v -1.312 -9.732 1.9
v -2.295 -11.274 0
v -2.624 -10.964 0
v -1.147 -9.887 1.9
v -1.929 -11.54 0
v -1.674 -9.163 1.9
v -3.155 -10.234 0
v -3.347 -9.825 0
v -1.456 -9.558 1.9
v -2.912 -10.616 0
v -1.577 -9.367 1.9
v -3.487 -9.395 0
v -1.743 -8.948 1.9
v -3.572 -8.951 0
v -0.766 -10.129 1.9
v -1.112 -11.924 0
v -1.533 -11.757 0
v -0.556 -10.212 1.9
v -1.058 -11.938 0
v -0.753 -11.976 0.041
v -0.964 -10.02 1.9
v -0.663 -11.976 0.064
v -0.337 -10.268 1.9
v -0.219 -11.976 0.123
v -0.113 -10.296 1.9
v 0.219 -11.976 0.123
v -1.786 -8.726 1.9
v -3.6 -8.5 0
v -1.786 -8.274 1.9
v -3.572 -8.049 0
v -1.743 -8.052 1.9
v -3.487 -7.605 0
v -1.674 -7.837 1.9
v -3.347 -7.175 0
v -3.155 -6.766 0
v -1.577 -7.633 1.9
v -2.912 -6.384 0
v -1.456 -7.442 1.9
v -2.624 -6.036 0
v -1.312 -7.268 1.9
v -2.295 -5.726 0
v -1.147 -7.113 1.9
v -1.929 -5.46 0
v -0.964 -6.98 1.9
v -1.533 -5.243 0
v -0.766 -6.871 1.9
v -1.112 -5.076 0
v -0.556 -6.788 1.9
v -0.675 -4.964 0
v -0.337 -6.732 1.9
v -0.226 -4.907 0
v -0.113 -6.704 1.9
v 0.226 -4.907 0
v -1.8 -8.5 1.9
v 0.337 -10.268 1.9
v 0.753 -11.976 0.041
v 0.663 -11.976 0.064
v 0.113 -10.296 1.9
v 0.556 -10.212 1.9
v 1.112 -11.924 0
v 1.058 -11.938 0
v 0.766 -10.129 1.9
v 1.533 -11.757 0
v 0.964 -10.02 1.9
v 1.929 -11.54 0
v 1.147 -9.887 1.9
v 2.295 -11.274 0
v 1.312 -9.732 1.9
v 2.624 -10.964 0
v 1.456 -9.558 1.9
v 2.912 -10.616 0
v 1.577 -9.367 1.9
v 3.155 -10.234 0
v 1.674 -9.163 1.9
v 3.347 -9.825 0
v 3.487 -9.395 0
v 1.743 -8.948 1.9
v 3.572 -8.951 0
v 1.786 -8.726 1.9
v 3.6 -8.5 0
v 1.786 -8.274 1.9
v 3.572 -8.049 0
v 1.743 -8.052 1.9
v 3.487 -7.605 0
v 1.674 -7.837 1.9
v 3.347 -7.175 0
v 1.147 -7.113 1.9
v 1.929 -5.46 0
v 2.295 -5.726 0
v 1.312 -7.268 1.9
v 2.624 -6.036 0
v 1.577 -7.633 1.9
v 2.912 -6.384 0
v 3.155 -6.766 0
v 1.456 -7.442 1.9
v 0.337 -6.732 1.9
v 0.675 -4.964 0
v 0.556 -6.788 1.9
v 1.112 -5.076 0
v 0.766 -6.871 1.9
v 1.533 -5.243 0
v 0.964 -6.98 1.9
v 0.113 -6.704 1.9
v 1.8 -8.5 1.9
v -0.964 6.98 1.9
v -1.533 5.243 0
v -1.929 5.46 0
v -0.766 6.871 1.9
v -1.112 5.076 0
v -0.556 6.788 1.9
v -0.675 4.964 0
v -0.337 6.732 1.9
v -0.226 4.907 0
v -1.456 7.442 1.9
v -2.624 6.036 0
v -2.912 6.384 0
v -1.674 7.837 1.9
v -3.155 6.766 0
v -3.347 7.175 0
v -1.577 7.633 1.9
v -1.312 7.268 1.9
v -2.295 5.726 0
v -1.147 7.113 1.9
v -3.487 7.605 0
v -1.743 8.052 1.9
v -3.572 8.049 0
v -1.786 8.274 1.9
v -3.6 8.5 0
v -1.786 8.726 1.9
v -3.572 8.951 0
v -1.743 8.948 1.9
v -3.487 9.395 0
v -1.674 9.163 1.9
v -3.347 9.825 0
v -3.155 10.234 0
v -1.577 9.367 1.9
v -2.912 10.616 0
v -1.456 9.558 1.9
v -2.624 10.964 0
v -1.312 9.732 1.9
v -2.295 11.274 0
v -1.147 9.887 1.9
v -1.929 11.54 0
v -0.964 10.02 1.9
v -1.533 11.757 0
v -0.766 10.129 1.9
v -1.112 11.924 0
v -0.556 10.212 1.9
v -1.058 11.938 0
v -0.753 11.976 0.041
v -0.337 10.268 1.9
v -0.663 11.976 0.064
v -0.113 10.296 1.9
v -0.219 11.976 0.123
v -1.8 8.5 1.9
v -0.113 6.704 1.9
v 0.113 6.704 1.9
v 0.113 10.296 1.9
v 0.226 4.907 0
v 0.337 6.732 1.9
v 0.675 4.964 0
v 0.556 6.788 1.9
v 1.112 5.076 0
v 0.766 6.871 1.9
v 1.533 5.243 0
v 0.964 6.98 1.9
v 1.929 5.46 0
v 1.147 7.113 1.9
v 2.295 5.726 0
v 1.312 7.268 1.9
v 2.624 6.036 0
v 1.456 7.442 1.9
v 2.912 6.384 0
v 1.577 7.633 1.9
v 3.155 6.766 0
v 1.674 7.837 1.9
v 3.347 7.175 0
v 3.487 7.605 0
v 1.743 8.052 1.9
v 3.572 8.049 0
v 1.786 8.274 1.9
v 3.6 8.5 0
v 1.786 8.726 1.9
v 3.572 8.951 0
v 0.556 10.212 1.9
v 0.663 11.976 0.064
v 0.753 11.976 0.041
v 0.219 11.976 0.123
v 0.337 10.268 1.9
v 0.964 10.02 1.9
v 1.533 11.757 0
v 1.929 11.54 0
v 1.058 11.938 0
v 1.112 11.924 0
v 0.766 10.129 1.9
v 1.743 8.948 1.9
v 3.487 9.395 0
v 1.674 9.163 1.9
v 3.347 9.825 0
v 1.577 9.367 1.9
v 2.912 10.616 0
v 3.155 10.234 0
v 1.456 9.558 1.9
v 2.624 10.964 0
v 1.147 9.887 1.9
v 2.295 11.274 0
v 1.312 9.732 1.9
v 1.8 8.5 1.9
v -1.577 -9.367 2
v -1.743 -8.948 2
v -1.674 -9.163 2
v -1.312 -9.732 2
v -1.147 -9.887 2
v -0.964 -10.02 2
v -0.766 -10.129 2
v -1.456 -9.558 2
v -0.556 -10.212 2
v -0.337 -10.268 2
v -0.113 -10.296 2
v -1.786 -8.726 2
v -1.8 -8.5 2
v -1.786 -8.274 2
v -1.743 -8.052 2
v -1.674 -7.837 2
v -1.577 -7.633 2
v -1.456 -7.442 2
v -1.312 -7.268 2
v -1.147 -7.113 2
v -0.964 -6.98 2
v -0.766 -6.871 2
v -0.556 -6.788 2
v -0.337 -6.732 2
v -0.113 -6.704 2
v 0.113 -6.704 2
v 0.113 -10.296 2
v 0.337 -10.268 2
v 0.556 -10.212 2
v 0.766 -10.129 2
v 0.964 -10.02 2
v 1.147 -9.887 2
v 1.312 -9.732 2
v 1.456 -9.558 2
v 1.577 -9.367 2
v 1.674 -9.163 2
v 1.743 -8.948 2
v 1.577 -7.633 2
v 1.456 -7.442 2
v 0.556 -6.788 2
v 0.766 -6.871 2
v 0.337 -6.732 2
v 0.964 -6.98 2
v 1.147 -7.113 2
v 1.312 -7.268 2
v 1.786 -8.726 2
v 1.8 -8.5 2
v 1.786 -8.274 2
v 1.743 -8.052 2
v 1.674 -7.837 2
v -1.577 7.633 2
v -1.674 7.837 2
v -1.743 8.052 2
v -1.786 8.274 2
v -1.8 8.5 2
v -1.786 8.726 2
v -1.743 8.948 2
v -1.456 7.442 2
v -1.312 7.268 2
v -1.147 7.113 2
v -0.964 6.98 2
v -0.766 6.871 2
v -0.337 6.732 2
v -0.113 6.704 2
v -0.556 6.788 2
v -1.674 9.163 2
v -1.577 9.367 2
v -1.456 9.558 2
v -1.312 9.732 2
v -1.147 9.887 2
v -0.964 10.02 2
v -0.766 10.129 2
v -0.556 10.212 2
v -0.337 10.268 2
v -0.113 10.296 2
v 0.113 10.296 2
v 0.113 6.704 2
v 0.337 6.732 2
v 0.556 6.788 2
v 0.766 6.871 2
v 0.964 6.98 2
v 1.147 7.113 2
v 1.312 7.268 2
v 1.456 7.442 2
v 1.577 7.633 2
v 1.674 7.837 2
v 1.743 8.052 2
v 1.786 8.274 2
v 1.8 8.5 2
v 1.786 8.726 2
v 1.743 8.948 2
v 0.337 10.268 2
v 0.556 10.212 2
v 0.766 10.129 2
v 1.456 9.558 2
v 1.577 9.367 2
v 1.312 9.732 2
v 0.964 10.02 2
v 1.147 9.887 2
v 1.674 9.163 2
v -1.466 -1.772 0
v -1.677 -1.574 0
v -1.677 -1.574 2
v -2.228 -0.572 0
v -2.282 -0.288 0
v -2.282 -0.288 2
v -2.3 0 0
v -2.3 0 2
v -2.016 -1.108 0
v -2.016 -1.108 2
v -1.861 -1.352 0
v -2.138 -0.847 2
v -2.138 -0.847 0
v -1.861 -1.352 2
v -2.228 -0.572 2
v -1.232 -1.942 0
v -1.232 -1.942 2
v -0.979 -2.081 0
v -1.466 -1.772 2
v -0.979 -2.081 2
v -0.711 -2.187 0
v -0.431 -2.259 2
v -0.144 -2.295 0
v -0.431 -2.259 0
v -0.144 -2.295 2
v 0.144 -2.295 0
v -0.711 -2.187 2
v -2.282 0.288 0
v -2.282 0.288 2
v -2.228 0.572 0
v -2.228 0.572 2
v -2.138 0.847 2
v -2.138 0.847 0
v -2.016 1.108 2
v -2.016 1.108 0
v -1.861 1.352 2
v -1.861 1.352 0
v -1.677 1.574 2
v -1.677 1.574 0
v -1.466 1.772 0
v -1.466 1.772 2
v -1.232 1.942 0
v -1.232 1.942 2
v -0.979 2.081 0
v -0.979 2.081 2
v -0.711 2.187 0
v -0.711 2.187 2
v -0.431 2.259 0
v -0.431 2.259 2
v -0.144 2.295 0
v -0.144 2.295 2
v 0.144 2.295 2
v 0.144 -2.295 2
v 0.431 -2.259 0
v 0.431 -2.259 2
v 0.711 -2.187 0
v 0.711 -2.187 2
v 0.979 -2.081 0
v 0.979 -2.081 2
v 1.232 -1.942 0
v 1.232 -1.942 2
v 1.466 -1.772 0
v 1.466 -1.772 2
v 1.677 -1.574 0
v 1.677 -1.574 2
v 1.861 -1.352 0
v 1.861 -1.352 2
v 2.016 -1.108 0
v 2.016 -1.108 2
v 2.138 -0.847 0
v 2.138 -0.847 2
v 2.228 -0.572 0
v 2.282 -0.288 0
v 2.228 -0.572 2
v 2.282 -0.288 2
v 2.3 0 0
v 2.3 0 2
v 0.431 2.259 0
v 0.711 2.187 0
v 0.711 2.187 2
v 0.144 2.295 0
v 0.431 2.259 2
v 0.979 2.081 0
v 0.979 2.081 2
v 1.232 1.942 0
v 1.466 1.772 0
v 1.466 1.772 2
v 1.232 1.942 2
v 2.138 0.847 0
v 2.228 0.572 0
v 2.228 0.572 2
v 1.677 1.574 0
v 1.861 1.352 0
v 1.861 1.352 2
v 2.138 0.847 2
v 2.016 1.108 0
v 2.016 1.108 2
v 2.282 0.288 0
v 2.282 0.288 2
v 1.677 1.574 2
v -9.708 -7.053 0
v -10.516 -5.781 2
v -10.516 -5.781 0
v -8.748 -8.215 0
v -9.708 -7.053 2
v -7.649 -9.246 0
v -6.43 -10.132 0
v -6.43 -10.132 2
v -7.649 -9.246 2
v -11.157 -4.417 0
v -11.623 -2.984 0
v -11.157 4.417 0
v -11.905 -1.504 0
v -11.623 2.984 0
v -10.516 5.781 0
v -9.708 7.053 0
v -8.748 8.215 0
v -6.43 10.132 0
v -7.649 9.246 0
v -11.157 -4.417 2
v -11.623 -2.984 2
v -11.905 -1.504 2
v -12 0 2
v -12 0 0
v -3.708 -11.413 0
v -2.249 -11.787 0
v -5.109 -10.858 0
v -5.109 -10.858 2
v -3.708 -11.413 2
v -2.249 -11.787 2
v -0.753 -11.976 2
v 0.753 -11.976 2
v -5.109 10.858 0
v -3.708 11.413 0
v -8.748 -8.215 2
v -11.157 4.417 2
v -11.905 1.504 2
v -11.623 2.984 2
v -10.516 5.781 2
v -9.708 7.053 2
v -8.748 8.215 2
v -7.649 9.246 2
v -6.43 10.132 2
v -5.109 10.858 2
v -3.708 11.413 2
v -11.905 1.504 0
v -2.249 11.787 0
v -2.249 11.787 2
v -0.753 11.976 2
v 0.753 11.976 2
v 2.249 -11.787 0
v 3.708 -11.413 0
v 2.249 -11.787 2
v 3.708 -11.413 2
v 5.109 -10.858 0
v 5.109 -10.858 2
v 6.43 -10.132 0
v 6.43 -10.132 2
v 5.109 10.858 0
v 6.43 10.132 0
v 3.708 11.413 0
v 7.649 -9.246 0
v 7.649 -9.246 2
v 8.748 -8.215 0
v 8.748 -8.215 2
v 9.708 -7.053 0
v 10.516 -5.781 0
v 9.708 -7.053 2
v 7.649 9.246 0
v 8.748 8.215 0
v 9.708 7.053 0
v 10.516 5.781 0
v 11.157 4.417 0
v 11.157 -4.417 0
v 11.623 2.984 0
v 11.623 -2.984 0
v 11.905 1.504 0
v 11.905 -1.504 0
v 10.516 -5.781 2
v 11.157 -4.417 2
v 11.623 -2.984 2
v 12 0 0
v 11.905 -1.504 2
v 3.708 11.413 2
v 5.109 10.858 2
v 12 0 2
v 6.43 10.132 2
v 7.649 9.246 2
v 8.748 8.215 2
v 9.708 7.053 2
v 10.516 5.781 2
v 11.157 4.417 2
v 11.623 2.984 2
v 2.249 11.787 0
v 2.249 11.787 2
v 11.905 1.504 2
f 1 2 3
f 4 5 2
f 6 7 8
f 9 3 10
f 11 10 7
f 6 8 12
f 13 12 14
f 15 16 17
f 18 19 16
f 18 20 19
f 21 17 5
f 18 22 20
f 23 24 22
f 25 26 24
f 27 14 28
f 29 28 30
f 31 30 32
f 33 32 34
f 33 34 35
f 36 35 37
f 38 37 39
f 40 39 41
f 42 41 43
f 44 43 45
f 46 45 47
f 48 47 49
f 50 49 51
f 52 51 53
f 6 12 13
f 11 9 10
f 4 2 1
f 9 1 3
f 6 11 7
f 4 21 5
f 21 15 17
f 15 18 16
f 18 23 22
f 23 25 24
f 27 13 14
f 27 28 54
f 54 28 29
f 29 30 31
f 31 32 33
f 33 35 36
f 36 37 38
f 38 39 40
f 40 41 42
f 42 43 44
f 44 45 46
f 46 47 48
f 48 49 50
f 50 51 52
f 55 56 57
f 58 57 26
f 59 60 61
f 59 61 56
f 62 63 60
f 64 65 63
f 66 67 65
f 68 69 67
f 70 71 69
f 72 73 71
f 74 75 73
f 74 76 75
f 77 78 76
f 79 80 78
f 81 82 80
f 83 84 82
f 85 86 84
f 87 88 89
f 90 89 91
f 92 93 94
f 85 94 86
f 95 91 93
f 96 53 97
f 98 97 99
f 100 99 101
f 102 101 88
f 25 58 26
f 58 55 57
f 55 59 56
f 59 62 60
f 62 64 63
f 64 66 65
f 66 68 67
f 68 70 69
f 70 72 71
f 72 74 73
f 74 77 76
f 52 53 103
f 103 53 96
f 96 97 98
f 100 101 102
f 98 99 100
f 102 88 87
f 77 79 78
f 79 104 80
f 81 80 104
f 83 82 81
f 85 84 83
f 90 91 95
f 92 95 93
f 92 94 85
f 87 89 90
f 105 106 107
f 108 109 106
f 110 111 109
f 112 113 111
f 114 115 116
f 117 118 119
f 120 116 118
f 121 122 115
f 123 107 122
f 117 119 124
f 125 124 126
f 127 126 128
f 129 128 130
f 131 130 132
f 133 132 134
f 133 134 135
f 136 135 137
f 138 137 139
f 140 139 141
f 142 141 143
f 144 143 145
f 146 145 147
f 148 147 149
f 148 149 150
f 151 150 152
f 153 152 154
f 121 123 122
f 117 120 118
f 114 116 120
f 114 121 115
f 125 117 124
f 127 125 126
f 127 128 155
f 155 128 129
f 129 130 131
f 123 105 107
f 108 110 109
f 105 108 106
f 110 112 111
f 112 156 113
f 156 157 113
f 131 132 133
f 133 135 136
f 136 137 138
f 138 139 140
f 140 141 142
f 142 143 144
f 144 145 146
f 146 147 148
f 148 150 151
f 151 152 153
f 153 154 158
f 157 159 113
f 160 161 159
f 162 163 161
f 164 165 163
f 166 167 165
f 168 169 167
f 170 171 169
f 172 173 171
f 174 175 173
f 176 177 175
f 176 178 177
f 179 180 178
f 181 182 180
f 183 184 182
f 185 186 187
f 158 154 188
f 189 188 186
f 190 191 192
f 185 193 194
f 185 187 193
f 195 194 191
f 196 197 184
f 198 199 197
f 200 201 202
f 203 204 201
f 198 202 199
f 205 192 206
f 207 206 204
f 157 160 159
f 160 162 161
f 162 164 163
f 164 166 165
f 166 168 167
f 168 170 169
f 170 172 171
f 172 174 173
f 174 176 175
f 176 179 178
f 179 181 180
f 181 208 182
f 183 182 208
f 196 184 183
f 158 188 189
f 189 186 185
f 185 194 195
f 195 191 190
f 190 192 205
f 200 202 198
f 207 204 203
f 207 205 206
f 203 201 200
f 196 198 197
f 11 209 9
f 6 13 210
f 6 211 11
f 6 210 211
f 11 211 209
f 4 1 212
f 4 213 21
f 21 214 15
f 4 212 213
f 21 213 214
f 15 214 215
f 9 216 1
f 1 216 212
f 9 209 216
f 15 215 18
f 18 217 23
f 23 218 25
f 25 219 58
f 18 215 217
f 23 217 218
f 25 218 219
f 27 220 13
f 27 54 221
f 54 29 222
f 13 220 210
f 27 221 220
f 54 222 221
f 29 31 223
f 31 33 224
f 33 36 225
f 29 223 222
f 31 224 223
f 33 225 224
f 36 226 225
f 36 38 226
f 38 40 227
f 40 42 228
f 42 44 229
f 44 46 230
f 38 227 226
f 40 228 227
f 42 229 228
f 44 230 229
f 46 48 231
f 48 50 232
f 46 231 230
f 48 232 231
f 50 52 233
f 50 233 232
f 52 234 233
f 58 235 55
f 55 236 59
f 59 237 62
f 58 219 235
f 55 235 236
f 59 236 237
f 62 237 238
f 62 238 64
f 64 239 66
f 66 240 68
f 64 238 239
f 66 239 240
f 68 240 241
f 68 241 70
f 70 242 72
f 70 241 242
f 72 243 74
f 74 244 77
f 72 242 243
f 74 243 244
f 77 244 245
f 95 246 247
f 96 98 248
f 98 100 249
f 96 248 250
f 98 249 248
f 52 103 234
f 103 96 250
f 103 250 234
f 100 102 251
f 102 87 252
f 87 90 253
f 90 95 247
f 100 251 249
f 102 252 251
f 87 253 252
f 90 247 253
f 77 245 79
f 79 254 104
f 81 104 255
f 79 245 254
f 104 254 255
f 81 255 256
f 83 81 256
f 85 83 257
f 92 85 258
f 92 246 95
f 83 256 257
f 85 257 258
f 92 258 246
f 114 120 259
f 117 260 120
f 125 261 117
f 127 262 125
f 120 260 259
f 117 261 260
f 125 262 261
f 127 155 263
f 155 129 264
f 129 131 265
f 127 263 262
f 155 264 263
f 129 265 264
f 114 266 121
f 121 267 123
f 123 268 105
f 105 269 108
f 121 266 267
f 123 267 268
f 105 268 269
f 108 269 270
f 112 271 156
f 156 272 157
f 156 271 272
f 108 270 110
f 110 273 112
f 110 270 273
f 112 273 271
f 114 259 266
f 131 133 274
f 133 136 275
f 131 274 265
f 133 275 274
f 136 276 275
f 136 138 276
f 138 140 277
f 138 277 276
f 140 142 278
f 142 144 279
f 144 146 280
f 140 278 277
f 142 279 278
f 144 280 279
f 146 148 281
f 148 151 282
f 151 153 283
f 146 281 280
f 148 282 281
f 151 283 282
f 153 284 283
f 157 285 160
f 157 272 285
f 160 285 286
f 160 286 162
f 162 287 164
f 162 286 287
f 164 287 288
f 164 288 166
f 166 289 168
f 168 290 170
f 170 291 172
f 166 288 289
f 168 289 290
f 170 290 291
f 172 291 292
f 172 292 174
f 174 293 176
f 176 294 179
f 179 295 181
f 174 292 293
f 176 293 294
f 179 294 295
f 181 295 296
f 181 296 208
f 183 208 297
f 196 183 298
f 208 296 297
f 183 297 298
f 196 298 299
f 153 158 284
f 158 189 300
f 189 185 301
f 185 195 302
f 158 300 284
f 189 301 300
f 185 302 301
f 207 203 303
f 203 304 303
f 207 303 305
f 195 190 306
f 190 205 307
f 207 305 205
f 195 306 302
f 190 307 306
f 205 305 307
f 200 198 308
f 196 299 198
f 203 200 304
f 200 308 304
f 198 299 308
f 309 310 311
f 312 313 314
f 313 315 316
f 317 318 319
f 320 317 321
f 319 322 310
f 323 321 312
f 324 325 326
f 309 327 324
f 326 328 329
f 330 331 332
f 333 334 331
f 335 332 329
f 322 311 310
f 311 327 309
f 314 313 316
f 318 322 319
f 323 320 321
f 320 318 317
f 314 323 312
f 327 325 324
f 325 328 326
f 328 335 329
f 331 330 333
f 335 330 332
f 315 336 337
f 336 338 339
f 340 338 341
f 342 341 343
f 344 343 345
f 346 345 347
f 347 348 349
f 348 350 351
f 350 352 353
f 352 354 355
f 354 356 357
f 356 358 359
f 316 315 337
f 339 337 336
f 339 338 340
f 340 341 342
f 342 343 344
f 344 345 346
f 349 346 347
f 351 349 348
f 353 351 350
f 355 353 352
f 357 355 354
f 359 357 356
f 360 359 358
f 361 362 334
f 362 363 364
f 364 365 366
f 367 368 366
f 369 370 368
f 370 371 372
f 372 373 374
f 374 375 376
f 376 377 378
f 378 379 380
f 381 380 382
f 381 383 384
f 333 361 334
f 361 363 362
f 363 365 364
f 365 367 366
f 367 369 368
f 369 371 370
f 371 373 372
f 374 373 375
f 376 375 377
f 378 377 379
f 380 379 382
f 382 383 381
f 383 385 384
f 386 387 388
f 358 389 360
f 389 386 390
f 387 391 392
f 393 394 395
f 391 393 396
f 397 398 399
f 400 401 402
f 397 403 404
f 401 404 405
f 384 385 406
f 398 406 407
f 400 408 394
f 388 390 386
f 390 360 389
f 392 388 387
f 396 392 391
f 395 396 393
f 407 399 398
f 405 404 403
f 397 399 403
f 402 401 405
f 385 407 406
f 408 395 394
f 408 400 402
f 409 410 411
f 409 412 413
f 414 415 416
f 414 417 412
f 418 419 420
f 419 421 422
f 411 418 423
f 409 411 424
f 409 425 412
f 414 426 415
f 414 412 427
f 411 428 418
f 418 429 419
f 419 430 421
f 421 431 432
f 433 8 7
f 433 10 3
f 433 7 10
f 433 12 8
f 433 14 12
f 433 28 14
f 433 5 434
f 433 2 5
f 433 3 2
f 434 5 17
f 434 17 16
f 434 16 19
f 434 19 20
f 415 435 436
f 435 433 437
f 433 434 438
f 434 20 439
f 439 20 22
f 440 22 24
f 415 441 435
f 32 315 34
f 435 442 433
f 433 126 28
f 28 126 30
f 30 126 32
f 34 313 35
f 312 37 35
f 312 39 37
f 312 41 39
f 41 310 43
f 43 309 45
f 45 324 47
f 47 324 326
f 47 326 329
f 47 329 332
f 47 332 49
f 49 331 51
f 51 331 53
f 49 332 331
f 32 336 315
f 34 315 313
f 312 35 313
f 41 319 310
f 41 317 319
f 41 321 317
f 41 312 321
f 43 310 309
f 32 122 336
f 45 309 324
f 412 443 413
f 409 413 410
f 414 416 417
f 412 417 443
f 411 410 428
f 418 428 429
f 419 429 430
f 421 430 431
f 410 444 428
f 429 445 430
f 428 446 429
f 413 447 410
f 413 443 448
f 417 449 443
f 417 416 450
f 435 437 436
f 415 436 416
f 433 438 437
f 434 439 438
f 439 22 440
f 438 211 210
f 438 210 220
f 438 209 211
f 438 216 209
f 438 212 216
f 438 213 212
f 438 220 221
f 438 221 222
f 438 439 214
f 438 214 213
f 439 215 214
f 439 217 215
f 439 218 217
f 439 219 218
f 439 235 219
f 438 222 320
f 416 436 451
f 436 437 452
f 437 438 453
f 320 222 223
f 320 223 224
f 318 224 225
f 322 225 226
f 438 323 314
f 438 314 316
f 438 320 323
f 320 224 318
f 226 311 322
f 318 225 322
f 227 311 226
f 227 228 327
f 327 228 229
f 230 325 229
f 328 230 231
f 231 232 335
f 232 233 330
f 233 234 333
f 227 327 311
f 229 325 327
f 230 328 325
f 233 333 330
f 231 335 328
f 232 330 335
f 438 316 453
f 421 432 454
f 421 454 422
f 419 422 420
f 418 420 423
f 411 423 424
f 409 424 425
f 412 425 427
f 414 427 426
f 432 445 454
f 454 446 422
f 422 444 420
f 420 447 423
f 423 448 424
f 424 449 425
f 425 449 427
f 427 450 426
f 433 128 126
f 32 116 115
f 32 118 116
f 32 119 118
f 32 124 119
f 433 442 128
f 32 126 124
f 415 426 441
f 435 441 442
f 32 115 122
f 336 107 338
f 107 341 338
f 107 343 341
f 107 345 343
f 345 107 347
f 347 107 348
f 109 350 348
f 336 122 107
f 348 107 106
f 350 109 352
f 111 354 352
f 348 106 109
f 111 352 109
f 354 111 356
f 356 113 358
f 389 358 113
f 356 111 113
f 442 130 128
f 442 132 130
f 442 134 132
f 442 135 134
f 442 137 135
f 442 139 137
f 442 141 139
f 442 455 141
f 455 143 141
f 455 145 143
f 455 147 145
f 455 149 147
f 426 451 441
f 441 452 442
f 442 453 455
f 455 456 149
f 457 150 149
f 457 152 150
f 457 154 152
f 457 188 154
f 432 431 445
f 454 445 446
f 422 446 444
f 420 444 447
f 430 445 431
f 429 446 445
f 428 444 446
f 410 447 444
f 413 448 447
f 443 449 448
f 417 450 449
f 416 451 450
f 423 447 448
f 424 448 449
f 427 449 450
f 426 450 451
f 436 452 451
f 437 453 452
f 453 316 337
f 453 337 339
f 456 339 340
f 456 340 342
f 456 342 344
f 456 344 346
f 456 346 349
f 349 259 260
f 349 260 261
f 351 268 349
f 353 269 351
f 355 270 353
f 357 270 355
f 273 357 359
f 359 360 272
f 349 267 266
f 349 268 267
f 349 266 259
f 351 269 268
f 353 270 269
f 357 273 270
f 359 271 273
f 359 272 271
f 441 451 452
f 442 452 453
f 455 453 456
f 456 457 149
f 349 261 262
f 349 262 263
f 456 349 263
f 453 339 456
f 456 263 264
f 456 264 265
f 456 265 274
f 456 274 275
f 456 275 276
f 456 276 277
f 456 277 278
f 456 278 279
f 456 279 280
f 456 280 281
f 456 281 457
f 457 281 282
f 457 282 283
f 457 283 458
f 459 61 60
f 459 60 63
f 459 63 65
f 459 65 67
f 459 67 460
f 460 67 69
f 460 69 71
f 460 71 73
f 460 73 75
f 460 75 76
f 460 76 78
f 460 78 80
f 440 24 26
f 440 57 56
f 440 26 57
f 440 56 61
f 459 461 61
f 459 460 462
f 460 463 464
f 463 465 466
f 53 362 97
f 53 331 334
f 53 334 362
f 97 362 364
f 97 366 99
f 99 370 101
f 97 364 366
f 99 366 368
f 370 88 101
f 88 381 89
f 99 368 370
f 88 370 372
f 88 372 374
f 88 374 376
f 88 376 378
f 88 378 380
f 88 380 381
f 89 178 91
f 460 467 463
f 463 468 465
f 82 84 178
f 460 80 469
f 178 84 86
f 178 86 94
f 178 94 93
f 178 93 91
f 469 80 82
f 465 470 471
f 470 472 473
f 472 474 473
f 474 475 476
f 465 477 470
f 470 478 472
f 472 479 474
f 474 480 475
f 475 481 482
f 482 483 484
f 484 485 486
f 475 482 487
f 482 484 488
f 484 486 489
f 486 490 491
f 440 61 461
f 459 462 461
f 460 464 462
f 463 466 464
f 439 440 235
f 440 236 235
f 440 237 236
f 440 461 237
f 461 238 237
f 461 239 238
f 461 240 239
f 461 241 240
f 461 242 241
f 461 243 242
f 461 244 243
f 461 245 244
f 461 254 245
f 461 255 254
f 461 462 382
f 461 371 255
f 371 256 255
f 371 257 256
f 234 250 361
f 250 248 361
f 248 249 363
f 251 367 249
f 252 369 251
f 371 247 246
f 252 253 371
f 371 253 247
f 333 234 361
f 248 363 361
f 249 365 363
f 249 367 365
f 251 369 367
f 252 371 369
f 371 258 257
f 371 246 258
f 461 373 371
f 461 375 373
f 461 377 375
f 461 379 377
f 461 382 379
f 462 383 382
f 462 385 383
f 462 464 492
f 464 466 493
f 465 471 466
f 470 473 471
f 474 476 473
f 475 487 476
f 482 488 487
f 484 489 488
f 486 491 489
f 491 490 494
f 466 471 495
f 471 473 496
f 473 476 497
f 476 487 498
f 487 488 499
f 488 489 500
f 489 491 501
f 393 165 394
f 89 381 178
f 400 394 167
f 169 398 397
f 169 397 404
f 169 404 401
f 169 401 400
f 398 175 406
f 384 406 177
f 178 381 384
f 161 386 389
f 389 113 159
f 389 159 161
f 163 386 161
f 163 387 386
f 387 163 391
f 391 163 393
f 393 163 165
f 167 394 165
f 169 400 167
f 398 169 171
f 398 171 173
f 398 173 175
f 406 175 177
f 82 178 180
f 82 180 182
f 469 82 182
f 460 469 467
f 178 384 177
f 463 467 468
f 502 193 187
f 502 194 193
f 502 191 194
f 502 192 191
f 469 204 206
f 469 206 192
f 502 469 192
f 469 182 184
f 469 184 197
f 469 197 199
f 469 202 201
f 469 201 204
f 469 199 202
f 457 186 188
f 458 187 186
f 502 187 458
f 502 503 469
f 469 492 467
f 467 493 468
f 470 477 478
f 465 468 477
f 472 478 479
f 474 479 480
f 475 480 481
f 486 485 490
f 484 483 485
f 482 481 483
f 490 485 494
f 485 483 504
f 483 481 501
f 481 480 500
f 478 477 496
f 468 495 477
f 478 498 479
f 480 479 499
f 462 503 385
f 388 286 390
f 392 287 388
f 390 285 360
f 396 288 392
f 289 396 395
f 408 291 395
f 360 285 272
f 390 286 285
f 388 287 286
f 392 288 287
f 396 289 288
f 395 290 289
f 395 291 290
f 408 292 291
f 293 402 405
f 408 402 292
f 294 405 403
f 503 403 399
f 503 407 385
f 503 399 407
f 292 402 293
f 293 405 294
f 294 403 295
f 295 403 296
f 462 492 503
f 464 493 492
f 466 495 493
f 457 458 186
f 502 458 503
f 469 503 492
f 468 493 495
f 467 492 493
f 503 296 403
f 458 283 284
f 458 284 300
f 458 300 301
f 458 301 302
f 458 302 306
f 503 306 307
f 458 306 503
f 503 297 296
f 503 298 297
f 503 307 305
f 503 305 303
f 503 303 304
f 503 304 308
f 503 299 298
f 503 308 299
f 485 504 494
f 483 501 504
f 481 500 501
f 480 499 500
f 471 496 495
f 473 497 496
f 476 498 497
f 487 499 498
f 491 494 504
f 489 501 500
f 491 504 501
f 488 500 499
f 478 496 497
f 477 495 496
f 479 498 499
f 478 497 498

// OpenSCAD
$fn = 50;

difference() {
	union() {
		translate(v = [0, 0, -1.7]) {
			rotate(a = [0, 0, 0]) {
				difference() {
					union() {
						translate(v = [0, 0, 1.7]) {
							cylinder(h = 2, r = 12);
						}
					}
					union() {
						translate(v = [0, -8.5, 1.7]) {
							rotate(a = [180, 0, 0]) {
								difference() {
									union() {
										translate(v = [0, 0, -8.0]) {
											cylinder(h = 8, r = 1.5);
										}
										translate(v = [0, 0, -1.9]) {
											cylinder(h = 1.9, r1 = 1.8, r2 = 3.6);
										}
										cylinder(h = 250, r = 3.6);
										translate(v = [0, 0, -8.0]) {
											cylinder(h = 8, r = 1.8);
										}
										translate(v = [0, 0, -8.0]) {
											cylinder(h = 8, r = 1.5);
										}
									}
									union();
								}
							}
						}
						translate(v = [0, 8.5, 1.7]) {
							rotate(a = [180, 0, 0]) {
								difference() {
									union() {
										translate(v = [0, 0, -8.0]) {
											cylinder(h = 8, r = 1.5);
										}
										translate(v = [0, 0, -1.9]) {
											cylinder(h = 1.9, r1 = 1.8, r2 = 3.6);
										}
										cylinder(h = 250, r = 3.6);
										translate(v = [0, 0, -8.0]) {
											cylinder(h = 8, r = 1.8);
										}
										translate(v = [0, 0, -8.0]) {
											cylinder(h = 8, r = 1.5);
										}
									}
									union();
								}
							}
						}
						translate(v = [0, 0, 1.6]) {
							cylinder(h = 2.2, r = 2.3);
						}
					}
				}
			}
		}
	}
	union();
}
